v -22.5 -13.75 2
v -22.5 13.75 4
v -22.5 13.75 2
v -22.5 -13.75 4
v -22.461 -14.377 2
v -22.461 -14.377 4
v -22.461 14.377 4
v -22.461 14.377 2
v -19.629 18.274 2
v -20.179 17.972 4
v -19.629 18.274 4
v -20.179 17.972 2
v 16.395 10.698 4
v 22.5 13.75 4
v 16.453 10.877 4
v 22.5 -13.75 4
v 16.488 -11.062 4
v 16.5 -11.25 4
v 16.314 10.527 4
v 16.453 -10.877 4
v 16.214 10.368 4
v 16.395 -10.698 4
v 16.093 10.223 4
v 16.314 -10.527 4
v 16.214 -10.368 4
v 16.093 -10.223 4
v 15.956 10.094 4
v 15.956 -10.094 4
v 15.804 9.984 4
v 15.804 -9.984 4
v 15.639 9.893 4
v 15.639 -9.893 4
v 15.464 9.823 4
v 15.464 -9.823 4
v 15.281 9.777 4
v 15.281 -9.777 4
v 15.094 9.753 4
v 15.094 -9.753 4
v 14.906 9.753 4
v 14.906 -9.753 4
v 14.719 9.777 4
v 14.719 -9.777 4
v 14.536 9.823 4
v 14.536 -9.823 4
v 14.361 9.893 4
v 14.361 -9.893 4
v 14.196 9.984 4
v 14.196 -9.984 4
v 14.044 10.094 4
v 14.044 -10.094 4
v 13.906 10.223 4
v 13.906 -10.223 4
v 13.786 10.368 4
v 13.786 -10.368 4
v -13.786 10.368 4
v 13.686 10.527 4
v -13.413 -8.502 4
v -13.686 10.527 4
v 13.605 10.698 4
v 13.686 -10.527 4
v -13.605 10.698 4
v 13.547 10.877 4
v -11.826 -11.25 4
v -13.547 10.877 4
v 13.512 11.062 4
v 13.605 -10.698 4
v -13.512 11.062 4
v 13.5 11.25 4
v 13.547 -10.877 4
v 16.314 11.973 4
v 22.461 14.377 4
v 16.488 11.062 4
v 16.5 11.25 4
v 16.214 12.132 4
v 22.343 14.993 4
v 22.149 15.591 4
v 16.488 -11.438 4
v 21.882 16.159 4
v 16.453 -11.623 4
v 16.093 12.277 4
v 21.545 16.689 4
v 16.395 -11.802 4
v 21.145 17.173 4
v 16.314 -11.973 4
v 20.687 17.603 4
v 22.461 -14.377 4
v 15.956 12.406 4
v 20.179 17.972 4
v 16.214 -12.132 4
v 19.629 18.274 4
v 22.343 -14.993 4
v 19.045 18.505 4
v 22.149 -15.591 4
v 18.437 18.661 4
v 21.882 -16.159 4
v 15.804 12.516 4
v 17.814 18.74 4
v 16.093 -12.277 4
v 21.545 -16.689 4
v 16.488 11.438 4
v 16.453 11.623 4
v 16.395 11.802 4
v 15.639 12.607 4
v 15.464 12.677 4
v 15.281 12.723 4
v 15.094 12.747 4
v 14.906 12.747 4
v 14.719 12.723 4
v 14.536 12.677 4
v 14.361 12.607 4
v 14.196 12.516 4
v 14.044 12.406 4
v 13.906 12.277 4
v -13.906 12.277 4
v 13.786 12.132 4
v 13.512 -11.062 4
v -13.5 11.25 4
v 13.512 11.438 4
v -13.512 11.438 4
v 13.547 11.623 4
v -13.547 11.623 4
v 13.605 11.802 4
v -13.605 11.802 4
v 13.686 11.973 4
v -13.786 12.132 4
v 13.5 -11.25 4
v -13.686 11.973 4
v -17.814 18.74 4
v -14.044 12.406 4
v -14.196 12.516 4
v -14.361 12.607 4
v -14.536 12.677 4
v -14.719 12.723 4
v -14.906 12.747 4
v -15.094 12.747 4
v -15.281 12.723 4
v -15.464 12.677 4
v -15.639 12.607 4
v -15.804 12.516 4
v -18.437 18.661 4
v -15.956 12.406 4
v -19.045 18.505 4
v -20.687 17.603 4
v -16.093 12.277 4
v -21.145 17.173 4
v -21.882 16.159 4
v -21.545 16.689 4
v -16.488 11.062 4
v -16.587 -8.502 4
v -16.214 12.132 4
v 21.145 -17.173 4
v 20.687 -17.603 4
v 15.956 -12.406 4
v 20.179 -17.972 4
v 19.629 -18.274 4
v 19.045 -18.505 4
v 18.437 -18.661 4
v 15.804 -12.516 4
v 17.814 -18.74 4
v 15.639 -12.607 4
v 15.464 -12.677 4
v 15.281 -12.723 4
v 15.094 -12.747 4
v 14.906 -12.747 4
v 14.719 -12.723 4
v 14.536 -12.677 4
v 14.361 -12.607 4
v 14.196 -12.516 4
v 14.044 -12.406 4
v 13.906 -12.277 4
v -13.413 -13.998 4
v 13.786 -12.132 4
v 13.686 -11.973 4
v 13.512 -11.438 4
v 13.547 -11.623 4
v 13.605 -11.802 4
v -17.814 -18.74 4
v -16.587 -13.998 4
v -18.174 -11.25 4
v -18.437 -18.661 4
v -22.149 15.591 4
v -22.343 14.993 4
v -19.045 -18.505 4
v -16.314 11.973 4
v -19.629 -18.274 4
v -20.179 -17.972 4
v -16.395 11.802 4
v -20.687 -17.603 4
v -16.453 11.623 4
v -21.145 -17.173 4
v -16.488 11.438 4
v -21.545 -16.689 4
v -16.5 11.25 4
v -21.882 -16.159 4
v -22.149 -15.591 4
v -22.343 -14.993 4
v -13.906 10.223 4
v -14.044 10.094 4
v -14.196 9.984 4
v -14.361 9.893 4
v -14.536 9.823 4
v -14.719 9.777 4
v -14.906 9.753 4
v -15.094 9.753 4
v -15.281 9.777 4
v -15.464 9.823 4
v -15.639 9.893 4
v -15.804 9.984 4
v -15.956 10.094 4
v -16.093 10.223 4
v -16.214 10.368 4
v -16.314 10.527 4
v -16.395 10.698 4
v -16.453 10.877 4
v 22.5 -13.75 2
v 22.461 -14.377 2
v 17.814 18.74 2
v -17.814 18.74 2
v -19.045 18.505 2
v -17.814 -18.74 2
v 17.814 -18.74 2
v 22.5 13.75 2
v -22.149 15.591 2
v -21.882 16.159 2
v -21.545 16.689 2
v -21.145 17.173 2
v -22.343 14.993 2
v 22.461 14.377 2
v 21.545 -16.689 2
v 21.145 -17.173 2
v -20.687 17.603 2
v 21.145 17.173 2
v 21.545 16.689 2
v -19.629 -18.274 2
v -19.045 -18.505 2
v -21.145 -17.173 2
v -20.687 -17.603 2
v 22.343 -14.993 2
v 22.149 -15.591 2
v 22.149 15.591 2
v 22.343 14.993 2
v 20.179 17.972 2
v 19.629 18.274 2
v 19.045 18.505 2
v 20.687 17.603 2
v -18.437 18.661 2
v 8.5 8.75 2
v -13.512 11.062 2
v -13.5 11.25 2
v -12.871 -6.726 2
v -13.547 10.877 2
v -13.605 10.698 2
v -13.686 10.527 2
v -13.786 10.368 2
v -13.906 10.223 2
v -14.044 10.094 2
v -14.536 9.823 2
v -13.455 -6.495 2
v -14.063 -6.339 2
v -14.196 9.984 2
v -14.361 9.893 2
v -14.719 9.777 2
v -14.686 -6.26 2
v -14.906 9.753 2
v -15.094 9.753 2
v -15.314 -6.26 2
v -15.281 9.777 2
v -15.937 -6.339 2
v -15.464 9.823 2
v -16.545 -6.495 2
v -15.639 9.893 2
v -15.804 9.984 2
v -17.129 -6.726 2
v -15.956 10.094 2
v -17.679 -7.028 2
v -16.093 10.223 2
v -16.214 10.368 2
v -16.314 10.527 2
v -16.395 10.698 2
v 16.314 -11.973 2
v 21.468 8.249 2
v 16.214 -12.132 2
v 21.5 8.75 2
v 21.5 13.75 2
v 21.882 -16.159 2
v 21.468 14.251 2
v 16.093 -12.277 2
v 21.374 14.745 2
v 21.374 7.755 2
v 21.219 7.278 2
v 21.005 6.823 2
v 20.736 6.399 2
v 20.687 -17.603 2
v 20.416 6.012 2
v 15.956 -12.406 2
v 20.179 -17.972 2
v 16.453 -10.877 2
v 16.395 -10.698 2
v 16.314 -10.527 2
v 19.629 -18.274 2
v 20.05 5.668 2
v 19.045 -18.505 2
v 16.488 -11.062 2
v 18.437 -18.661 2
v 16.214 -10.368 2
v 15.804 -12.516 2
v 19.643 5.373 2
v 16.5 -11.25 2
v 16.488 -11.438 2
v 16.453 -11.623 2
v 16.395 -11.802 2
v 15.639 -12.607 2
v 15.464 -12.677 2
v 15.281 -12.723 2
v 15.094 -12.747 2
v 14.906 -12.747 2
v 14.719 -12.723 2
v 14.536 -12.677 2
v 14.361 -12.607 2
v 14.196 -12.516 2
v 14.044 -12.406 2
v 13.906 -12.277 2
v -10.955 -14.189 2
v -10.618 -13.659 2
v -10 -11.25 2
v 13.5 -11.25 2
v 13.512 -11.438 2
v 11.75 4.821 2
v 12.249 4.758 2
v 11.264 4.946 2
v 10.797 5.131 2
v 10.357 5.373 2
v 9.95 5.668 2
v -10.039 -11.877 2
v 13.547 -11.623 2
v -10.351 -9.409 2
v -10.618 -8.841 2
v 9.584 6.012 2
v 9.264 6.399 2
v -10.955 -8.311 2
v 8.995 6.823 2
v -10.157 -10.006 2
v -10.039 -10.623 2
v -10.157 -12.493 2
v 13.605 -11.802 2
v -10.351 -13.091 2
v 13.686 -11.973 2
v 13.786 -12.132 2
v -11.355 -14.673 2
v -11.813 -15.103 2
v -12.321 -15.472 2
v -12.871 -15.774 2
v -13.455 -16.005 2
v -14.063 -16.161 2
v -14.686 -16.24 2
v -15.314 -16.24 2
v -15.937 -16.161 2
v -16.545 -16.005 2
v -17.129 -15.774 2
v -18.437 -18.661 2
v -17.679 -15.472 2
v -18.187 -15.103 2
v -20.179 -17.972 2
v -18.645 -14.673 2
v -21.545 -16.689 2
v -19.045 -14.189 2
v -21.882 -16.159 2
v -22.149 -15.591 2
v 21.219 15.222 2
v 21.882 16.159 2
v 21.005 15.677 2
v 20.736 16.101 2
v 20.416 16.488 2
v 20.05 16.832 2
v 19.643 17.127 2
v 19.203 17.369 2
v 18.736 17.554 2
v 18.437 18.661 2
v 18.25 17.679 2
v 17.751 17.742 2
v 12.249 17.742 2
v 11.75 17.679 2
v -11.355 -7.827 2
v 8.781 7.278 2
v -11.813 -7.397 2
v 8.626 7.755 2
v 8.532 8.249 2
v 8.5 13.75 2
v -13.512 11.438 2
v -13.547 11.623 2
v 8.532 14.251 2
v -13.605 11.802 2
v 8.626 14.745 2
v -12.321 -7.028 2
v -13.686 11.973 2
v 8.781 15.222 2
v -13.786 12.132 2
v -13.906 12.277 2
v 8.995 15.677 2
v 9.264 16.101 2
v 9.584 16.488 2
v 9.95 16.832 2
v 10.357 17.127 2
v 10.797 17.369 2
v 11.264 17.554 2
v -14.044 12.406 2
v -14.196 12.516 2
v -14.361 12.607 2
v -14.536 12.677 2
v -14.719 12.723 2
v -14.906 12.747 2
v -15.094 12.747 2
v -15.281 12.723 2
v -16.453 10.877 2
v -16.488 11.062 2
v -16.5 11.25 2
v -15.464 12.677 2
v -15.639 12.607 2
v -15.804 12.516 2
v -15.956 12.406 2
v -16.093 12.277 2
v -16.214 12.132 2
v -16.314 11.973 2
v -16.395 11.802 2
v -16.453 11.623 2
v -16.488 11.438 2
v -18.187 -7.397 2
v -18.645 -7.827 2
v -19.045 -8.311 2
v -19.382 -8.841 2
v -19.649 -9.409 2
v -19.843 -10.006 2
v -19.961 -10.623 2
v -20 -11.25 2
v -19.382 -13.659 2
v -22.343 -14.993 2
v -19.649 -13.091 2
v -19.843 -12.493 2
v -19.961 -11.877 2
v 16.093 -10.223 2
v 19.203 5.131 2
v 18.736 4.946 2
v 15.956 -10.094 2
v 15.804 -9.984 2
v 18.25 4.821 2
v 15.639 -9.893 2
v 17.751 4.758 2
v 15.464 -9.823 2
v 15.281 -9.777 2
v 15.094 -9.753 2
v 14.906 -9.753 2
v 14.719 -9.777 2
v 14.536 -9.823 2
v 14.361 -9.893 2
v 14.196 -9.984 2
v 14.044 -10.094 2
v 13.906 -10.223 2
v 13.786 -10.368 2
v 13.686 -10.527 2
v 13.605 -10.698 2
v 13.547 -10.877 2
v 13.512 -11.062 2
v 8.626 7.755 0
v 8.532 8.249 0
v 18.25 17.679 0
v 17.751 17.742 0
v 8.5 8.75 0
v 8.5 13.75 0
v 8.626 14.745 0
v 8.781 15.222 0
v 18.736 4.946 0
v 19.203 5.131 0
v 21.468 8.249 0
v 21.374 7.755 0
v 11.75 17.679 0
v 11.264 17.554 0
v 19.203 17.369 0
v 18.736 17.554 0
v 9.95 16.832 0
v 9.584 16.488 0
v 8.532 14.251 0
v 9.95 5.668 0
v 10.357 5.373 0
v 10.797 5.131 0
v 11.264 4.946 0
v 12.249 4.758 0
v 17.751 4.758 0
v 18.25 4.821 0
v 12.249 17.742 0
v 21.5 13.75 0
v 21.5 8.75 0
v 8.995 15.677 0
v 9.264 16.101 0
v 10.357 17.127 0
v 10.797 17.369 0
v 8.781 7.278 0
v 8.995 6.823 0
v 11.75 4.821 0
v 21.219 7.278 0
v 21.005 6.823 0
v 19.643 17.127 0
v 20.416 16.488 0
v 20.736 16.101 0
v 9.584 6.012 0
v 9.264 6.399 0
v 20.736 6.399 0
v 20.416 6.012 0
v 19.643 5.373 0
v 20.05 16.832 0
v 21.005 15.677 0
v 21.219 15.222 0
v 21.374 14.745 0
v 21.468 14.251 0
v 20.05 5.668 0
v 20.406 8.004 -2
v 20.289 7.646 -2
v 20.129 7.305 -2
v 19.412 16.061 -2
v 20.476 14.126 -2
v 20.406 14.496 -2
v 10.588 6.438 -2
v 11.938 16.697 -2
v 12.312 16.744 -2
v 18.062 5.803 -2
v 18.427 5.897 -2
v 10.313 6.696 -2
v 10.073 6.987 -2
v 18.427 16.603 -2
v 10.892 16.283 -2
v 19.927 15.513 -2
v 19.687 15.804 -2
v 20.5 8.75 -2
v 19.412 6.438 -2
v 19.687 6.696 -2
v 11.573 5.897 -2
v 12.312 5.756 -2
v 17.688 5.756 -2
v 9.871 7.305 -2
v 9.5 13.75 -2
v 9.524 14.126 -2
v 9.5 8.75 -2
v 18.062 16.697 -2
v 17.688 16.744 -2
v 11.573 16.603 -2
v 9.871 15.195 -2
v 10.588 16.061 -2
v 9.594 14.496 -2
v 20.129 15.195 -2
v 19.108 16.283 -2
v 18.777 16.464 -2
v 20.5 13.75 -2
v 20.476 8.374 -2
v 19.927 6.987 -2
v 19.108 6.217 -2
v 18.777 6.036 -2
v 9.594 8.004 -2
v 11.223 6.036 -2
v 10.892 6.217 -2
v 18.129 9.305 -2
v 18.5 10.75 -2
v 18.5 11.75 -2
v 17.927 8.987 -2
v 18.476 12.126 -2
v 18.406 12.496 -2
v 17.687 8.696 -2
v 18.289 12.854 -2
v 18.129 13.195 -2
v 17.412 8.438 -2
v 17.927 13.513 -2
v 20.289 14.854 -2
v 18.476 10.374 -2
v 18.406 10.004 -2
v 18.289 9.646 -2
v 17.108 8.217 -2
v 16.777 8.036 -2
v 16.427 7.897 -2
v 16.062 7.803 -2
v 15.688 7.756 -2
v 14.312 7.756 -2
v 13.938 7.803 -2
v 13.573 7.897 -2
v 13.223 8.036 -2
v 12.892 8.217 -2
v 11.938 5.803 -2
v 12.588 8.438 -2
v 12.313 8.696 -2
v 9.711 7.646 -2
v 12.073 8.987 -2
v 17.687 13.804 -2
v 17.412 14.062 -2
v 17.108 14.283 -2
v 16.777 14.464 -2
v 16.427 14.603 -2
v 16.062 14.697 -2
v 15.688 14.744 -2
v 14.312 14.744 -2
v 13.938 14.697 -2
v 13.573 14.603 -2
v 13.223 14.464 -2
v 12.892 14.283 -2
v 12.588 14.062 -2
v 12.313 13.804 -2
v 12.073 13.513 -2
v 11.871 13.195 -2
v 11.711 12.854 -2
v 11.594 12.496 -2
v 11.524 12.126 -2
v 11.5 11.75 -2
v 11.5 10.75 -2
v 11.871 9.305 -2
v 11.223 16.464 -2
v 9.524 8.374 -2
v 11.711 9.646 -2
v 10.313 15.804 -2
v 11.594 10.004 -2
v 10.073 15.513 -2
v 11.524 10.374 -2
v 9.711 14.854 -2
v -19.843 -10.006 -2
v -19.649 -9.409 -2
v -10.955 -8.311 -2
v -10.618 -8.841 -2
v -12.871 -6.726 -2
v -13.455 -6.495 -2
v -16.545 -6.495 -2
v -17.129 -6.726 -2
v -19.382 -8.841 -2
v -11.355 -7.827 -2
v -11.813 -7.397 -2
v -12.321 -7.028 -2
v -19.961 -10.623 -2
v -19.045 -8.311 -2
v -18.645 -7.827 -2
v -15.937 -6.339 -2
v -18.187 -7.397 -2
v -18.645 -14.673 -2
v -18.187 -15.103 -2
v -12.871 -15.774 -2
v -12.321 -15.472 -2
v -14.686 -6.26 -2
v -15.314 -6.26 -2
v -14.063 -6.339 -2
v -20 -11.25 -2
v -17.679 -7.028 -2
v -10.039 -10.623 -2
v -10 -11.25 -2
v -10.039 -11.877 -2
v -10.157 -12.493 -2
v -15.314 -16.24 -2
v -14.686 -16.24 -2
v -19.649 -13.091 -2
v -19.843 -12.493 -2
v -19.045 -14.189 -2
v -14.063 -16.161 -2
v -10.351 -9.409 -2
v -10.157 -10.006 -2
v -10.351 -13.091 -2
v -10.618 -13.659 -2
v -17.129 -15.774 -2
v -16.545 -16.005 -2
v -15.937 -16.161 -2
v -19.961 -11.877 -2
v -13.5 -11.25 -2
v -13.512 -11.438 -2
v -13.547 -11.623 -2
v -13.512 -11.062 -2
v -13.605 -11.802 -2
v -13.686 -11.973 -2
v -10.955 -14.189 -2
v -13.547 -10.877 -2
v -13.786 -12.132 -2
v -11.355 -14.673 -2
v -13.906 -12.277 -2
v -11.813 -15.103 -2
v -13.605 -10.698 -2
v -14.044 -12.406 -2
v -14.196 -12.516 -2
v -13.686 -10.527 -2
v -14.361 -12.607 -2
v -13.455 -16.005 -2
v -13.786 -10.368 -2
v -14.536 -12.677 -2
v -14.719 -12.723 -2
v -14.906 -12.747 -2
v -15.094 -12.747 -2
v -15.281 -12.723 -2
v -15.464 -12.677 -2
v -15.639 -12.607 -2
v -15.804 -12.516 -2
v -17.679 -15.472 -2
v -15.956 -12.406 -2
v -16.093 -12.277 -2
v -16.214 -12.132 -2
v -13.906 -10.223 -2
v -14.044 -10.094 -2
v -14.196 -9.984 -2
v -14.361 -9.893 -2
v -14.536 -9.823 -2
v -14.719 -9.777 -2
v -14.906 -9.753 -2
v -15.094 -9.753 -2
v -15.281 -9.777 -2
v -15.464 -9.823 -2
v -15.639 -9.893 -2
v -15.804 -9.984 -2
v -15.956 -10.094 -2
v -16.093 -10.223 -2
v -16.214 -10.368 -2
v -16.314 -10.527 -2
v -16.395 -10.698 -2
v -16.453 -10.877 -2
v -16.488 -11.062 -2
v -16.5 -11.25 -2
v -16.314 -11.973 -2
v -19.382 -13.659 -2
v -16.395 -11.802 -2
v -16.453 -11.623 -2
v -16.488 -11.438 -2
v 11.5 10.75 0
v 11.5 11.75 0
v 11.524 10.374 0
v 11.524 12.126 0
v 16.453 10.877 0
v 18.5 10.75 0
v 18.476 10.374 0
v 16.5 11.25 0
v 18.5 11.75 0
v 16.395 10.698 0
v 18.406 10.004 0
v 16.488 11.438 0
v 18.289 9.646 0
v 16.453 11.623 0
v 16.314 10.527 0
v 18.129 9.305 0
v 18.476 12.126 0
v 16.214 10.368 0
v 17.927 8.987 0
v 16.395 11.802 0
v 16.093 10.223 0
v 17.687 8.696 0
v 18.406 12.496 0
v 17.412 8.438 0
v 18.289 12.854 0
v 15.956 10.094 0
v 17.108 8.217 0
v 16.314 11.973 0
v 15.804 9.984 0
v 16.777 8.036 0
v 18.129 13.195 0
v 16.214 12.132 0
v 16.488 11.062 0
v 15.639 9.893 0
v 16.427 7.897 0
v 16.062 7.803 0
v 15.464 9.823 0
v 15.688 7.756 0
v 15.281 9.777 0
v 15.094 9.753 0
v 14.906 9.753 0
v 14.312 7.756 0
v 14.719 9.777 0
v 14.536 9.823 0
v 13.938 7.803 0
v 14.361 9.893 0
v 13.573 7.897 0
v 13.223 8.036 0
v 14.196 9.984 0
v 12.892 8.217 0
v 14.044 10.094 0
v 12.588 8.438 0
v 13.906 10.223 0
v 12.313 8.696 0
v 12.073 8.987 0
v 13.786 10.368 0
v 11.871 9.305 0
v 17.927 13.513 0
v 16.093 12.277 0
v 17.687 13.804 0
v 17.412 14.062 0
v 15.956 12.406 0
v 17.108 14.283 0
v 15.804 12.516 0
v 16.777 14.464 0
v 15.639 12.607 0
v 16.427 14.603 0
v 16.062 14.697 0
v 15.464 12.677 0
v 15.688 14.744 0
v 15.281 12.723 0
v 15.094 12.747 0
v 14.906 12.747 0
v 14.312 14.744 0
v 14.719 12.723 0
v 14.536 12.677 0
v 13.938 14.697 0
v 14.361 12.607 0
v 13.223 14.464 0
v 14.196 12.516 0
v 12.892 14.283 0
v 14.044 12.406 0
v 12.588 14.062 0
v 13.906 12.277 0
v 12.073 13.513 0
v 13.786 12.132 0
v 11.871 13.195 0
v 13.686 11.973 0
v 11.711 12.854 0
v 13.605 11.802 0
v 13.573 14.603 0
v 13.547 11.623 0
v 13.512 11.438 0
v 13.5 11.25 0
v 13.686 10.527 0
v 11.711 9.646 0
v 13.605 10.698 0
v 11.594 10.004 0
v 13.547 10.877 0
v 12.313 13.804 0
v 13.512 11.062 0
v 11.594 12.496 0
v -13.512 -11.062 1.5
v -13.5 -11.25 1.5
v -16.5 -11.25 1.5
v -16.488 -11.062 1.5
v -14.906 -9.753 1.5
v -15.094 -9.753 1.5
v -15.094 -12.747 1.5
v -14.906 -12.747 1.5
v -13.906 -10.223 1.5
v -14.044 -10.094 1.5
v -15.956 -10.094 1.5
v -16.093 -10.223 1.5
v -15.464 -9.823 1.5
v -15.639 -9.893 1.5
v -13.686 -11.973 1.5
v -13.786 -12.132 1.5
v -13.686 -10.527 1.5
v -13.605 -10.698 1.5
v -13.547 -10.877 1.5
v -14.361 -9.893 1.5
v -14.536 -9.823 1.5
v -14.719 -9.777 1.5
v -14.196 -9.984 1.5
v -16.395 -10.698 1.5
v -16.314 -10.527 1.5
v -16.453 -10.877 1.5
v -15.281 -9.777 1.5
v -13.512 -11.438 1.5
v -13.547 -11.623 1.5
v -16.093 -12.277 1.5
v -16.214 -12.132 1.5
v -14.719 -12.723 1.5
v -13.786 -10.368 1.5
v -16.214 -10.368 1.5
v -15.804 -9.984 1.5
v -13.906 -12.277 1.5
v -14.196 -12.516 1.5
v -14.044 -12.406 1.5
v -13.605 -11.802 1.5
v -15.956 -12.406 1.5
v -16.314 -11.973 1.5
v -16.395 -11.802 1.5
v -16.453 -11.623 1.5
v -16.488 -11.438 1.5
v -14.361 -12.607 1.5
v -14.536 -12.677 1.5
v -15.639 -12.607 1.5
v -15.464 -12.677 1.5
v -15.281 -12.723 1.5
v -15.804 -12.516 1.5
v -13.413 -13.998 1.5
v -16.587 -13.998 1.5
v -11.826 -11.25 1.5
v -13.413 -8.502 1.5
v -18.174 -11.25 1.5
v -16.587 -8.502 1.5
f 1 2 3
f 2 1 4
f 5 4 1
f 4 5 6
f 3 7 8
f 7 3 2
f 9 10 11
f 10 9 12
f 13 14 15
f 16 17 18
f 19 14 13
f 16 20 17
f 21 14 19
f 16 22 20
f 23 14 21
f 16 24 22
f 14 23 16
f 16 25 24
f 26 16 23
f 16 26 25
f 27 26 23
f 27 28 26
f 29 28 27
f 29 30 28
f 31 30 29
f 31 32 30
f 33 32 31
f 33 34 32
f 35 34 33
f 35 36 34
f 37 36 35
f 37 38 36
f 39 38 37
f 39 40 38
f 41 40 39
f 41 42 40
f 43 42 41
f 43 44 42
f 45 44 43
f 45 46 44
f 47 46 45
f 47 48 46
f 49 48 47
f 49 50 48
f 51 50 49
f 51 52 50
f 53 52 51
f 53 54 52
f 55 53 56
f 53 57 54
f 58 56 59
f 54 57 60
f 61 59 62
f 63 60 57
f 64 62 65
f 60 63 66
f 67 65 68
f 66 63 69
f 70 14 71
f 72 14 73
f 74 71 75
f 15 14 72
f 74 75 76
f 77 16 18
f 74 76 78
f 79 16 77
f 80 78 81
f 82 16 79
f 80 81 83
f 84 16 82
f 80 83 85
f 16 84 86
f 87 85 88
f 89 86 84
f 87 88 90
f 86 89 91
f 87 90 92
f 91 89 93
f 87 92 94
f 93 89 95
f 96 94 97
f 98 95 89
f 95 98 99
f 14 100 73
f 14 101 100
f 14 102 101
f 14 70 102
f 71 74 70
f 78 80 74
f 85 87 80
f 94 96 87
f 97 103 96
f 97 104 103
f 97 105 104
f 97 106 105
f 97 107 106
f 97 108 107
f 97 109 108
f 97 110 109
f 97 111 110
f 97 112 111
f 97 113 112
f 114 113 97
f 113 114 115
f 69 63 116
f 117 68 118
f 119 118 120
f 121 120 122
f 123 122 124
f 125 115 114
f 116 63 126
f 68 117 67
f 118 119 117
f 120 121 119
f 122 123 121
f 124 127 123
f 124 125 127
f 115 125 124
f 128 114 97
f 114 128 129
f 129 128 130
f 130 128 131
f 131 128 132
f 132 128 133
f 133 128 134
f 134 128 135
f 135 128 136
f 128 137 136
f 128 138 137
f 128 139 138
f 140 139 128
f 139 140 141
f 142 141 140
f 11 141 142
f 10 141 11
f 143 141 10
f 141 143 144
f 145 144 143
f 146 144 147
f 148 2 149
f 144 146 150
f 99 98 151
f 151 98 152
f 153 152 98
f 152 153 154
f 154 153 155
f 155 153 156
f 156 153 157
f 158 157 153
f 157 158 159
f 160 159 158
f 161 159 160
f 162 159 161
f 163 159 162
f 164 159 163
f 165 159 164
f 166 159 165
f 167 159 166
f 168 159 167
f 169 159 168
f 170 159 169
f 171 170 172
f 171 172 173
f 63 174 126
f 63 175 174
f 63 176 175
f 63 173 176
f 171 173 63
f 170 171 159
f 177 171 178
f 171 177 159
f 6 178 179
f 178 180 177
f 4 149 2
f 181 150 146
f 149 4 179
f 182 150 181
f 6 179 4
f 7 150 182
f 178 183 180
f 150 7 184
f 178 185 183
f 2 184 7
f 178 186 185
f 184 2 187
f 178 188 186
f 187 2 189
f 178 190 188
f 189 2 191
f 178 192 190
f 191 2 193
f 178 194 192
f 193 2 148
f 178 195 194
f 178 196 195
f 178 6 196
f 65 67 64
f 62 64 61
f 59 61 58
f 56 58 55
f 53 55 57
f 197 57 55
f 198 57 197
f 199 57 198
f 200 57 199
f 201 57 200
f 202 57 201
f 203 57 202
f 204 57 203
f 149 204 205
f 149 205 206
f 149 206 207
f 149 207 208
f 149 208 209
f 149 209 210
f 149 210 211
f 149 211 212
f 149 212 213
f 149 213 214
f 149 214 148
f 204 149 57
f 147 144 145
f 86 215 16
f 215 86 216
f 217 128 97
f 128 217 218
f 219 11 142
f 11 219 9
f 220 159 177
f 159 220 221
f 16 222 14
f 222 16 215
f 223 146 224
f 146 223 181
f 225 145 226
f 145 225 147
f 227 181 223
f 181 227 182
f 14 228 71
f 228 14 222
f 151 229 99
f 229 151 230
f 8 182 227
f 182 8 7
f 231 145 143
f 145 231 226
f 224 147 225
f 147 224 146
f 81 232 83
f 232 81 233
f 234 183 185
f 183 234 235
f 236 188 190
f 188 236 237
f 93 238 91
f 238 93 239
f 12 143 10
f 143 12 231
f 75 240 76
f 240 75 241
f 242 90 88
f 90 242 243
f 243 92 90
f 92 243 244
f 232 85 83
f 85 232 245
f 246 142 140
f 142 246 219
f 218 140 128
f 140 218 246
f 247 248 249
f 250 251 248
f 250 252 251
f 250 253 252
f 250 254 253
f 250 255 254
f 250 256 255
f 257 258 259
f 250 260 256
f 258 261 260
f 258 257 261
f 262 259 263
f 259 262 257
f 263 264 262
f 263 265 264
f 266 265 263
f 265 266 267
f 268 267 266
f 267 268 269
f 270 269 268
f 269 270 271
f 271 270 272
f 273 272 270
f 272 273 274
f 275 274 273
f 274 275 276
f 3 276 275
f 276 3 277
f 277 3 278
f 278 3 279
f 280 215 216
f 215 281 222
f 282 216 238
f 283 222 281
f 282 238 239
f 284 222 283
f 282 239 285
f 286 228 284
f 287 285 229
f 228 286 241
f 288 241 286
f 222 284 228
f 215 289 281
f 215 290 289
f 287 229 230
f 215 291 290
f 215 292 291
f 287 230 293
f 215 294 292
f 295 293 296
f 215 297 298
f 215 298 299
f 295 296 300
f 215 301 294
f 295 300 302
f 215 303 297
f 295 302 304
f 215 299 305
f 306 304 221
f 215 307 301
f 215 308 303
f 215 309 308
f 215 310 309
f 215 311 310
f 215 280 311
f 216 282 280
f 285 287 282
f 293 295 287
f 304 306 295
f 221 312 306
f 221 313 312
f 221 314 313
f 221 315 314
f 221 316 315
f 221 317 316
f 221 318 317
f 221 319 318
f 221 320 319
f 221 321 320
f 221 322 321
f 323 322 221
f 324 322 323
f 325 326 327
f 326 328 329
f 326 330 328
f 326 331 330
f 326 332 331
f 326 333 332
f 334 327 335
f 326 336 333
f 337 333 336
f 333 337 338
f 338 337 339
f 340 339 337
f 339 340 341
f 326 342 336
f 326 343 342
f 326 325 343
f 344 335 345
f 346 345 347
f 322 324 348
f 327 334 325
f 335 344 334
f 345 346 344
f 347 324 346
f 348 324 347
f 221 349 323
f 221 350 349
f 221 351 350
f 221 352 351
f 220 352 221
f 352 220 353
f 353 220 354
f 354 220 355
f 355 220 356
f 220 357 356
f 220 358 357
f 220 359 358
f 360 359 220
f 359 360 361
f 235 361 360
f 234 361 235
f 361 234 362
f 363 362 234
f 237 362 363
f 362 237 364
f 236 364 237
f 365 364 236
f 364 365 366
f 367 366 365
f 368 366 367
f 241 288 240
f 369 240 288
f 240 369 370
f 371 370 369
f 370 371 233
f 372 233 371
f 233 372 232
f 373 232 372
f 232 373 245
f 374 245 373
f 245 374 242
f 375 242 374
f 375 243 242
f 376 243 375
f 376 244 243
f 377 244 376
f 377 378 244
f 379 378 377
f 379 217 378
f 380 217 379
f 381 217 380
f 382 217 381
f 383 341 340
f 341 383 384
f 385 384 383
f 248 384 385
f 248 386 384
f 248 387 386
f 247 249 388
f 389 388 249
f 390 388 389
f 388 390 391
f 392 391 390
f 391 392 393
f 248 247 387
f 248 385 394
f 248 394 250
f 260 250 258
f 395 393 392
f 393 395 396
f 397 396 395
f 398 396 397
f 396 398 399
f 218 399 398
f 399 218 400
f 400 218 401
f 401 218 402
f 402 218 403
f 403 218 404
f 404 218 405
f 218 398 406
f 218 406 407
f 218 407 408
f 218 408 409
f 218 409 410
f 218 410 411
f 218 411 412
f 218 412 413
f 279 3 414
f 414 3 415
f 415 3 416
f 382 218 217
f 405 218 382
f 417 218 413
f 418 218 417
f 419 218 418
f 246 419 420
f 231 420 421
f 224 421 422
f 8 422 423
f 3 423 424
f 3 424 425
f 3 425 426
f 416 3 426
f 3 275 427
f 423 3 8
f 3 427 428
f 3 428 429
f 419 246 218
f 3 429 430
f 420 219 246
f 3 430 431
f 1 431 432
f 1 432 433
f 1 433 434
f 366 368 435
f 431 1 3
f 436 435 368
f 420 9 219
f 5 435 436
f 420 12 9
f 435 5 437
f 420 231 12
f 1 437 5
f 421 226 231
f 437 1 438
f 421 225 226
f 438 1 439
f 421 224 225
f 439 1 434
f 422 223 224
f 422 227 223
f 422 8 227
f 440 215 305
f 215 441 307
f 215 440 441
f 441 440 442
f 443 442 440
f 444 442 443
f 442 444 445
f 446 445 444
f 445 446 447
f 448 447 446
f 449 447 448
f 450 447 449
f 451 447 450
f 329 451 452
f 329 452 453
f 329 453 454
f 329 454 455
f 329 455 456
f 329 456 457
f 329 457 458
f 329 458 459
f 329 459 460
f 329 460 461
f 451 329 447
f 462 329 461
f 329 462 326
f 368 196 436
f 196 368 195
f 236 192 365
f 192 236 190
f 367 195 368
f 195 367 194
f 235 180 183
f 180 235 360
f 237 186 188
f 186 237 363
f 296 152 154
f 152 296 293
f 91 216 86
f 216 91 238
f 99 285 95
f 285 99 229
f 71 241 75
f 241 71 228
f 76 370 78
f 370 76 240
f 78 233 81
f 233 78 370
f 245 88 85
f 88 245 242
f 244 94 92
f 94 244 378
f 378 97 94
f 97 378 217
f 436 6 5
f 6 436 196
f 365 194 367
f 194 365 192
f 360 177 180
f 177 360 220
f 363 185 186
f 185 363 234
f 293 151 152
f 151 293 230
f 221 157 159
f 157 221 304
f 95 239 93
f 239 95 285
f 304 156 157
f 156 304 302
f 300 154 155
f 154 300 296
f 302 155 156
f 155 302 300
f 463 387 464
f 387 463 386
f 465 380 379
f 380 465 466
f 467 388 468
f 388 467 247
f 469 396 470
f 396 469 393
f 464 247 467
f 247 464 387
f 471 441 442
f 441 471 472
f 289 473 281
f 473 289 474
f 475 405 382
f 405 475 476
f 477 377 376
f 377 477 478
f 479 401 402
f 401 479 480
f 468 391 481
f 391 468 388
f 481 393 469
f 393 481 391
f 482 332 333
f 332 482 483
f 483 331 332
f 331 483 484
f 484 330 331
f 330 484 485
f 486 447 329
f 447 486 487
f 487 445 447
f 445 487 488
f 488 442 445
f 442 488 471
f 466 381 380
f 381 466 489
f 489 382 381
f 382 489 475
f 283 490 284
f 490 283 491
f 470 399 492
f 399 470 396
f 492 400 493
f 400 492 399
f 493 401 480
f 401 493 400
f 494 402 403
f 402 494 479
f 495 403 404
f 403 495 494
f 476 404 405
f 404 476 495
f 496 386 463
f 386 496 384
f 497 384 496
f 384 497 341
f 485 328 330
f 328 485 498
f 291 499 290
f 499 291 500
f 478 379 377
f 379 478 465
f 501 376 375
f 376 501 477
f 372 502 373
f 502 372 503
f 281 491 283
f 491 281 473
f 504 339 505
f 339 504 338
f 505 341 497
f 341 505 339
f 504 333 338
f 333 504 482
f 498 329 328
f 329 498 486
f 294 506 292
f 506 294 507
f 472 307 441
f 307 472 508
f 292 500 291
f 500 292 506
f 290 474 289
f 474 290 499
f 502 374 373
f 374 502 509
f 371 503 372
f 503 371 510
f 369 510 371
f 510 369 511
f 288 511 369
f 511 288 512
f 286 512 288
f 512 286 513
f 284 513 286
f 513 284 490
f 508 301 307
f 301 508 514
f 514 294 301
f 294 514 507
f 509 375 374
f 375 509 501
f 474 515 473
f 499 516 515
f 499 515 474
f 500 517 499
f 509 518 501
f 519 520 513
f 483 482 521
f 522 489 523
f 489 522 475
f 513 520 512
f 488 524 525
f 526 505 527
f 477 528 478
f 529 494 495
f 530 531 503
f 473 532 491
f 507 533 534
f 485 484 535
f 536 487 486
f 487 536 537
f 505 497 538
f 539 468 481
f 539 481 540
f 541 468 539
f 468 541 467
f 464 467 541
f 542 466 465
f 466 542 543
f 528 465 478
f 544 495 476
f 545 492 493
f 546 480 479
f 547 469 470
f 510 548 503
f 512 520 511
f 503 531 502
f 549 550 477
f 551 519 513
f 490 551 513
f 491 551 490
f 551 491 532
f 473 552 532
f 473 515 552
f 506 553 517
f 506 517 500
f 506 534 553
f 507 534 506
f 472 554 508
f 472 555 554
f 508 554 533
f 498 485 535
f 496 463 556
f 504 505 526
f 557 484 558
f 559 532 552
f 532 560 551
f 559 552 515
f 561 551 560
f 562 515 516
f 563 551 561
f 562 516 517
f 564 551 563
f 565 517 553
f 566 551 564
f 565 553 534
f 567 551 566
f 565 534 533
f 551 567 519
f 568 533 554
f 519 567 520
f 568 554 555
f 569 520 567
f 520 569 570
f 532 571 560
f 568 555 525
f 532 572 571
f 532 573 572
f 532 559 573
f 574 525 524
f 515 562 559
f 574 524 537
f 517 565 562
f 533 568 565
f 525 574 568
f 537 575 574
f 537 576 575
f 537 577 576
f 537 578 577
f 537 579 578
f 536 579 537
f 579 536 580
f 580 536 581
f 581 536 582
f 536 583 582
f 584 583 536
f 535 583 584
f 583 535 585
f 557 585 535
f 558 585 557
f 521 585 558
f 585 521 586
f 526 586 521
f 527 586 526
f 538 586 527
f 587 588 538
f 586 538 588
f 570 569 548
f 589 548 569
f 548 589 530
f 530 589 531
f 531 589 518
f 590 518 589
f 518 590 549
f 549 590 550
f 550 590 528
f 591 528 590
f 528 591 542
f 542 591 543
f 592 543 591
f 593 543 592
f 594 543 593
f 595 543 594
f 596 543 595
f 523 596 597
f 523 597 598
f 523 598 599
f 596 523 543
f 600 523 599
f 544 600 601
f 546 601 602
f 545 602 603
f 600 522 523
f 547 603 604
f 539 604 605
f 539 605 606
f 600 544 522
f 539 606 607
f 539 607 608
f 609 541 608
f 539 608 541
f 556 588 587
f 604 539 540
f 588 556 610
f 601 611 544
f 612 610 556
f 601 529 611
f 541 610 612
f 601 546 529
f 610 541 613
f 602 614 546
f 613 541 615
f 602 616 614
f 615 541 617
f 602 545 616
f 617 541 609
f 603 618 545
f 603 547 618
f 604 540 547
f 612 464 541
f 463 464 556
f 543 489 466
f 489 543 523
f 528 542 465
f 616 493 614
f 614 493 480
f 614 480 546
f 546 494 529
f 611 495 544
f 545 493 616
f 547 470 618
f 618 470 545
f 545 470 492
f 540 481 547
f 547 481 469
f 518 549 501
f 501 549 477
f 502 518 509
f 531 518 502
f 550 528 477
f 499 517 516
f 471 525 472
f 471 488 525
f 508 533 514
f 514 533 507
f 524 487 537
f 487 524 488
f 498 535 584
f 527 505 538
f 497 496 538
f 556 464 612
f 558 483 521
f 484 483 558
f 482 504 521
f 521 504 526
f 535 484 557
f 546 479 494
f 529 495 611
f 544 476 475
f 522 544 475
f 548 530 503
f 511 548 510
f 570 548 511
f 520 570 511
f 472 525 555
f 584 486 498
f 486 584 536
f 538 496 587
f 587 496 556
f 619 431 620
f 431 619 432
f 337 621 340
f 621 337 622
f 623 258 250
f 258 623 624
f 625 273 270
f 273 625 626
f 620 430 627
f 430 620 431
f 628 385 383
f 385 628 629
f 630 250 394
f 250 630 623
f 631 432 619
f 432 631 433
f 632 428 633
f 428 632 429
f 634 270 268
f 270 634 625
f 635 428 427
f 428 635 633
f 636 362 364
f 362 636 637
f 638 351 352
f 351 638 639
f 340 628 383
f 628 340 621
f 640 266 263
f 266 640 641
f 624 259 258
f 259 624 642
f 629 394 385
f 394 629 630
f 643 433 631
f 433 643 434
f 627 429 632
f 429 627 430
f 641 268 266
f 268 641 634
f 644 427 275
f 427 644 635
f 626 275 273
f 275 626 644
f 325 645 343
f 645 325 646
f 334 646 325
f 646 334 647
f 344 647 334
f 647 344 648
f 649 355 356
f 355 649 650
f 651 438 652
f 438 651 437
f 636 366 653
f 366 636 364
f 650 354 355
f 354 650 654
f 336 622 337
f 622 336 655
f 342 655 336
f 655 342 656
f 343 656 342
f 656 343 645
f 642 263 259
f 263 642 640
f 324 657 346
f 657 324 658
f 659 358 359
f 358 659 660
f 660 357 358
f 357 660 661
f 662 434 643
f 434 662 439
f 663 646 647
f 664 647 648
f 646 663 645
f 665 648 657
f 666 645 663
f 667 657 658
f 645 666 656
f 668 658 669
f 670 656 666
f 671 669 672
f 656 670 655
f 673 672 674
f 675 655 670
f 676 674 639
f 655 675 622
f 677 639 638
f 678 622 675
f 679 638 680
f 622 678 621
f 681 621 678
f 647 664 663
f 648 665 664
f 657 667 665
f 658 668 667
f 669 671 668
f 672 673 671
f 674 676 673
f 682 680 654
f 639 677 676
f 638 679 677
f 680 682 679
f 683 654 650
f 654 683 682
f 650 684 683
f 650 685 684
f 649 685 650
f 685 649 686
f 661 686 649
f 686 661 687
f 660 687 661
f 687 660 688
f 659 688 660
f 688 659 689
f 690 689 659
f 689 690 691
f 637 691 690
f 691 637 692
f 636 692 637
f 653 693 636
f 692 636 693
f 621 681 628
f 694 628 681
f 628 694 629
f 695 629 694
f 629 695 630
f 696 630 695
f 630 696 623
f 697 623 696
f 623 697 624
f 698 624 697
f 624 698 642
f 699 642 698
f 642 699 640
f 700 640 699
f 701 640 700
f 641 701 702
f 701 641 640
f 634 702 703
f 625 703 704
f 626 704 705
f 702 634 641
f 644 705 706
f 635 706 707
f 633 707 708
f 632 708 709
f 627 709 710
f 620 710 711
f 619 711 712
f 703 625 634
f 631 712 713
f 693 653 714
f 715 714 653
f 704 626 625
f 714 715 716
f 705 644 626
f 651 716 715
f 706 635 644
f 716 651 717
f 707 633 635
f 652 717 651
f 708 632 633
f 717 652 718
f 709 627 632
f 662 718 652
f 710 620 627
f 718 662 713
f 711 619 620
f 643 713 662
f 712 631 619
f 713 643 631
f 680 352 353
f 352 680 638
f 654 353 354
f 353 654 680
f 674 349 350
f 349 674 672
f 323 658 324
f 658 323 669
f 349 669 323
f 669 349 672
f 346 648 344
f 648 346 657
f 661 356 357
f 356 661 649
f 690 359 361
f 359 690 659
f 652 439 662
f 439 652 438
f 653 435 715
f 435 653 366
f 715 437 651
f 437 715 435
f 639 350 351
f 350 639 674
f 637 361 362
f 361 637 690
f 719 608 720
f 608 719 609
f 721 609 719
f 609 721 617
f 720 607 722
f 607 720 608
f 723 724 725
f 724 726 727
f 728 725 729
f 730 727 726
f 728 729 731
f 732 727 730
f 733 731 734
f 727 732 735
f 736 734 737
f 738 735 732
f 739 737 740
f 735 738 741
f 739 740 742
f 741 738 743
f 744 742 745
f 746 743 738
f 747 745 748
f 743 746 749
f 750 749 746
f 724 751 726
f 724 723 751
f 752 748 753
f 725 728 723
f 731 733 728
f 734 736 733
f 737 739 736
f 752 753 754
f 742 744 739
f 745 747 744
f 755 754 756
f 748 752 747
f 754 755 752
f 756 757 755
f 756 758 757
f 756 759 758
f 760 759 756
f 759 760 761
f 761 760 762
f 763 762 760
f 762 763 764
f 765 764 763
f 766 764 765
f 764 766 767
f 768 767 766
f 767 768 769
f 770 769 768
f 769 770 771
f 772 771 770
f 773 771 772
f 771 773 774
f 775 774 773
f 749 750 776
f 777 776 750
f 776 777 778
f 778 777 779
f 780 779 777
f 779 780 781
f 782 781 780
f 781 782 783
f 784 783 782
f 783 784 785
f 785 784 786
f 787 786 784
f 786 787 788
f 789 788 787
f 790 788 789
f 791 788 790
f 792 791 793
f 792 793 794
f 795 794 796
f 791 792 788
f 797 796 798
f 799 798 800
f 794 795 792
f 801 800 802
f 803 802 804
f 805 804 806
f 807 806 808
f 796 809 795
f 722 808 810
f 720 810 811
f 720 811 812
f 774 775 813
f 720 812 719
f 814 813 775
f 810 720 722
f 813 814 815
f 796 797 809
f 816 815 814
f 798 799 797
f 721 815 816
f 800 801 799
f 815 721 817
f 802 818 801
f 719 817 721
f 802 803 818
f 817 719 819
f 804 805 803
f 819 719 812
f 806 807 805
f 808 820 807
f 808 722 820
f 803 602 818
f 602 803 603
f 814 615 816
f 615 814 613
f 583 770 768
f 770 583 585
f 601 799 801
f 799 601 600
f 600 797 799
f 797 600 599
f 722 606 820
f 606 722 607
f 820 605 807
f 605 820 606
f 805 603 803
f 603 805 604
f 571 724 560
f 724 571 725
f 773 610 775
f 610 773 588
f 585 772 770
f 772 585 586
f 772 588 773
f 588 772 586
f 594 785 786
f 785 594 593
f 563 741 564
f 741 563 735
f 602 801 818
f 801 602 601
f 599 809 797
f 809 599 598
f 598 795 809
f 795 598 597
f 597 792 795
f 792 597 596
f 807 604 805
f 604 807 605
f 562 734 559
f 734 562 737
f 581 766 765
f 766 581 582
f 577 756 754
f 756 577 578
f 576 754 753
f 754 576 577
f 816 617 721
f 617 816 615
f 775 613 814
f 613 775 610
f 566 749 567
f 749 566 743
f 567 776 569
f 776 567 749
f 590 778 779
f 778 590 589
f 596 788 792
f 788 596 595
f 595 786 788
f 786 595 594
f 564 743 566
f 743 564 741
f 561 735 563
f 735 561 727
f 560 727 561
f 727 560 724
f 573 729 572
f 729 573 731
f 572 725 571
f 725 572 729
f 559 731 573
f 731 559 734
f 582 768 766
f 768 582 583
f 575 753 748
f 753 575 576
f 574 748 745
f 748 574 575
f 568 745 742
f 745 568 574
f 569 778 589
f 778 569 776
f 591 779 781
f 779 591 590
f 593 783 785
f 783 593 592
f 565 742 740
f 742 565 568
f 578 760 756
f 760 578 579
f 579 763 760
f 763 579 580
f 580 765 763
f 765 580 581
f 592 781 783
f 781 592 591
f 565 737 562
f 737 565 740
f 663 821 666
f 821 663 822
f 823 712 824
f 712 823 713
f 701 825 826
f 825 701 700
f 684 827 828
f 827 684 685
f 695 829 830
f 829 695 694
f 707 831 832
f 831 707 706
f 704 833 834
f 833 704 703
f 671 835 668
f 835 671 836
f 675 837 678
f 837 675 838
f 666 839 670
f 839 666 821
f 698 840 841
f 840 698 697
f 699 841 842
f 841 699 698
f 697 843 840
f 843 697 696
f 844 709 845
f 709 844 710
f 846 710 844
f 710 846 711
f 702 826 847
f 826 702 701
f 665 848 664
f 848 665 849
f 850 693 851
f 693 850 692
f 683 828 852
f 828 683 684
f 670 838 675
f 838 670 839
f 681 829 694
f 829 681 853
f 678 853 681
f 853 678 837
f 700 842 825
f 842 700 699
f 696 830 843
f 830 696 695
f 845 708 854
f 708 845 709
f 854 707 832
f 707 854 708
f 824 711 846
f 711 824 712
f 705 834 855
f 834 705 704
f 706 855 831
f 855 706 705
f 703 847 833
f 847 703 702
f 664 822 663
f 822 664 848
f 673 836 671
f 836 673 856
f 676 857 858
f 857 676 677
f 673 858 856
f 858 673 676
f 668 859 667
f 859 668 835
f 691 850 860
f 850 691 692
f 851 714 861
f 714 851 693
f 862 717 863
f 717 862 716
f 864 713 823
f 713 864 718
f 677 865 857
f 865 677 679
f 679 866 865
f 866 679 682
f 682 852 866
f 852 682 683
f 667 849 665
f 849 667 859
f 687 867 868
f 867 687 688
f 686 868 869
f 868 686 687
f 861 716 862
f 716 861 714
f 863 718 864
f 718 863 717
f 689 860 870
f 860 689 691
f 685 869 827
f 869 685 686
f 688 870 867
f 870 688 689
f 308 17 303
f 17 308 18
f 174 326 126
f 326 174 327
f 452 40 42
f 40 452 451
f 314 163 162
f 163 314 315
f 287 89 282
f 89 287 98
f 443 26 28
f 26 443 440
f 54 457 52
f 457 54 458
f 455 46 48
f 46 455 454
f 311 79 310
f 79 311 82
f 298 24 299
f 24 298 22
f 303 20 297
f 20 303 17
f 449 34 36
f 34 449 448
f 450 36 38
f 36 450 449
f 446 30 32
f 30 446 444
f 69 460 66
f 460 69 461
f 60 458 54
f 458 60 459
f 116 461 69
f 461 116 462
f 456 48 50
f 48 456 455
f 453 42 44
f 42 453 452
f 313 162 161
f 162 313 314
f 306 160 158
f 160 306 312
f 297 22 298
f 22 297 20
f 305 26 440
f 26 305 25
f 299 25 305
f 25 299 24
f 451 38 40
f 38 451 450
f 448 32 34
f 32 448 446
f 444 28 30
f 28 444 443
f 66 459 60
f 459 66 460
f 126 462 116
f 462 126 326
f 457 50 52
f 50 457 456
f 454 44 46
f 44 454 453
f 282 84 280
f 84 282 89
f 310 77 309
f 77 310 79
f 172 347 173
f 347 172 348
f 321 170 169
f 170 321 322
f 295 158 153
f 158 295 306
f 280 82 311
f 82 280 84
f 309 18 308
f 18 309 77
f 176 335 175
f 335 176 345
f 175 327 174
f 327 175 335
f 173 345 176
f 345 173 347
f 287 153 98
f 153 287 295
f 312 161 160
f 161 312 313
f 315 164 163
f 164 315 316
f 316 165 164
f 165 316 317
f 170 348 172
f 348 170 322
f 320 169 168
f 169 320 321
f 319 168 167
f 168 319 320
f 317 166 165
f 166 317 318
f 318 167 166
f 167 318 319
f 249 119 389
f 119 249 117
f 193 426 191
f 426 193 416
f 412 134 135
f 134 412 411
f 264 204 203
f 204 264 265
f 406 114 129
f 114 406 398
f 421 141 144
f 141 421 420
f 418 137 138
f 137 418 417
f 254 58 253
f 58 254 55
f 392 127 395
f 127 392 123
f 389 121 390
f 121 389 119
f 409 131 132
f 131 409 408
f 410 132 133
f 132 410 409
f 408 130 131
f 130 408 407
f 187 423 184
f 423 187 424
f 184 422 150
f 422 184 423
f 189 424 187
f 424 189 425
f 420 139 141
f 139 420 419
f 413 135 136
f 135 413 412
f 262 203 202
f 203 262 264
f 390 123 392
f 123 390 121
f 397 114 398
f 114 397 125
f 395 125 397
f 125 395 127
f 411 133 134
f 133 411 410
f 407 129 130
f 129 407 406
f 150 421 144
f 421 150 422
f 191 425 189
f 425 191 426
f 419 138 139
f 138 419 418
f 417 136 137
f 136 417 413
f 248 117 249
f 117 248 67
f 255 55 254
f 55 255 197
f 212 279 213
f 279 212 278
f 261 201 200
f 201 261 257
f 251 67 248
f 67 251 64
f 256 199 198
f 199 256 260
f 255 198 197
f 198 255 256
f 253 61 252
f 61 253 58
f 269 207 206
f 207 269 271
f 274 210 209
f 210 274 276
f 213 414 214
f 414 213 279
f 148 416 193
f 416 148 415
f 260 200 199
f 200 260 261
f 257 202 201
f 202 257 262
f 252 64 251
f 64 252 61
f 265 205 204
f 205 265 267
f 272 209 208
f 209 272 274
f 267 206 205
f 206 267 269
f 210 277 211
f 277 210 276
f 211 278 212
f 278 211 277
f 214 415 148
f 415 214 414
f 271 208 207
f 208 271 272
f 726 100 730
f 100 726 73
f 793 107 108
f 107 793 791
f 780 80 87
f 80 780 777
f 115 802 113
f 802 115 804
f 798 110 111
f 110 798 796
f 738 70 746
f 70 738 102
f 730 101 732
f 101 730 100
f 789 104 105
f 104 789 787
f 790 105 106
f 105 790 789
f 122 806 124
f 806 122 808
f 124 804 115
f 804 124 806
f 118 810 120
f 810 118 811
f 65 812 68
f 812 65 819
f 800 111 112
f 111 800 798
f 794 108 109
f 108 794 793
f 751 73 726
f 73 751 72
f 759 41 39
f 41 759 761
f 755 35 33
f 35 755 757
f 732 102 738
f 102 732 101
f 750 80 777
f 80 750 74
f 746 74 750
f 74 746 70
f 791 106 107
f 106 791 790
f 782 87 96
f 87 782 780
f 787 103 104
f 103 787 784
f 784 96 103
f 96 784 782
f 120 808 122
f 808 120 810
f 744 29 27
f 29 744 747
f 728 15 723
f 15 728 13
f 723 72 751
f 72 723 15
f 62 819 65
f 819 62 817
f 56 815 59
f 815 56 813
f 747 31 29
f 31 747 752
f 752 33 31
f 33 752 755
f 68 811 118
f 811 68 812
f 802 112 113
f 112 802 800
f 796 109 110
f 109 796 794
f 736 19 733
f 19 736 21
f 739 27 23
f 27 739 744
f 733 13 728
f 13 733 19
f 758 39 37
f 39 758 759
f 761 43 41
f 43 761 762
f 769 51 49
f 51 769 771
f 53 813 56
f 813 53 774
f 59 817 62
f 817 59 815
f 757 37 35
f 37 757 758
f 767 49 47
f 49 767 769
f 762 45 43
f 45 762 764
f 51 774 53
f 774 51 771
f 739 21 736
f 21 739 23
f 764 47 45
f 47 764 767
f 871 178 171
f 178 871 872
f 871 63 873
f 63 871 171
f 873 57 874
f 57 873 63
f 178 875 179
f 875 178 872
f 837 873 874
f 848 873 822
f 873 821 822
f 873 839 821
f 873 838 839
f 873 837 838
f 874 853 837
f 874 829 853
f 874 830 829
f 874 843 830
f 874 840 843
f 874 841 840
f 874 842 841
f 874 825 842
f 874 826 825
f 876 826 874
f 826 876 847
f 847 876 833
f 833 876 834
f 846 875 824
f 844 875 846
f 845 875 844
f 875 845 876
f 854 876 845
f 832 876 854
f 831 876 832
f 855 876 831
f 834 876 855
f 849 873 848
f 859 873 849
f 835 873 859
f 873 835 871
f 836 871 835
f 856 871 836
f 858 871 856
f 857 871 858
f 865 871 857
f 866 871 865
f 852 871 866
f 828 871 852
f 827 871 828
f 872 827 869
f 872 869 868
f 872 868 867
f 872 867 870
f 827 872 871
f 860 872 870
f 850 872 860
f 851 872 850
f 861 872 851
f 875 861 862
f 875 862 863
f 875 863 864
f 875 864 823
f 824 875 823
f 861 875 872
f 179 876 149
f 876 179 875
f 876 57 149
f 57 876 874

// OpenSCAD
$fn = 50;


difference() {
	union() {
		translate(v = [0, 0, 2]) {
			rotate(a = [0, 0, 0]) {
				hull() {
					translate(v = [-17.5000000000, 13.7500000000, 0]) {
						rotate(a = [0, 0, 0]) {
							translate(v = [0, 0, 0]) {
								rotate(a = [0, 0, 0]) {
									cylinder(h = 2, r = 5);
								}
							}
						}
					}
					translate(v = [17.5000000000, 13.7500000000, 0]) {
						rotate(a = [0, 0, 0]) {
							translate(v = [0, 0, 0]) {
								rotate(a = [0, 0, 0]) {
									cylinder(h = 2, r = 5);
								}
							}
						}
					}
					translate(v = [-17.5000000000, -13.7500000000, 0]) {
						rotate(a = [0, 0, 0]) {
							translate(v = [0, 0, 0]) {
								rotate(a = [0, 0, 0]) {
									cylinder(h = 2, r = 5);
								}
							}
						}
					}
					translate(v = [17.5000000000, -13.7500000000, 0]) {
						rotate(a = [0, 0, 0]) {
							translate(v = [0, 0, 0]) {
								rotate(a = [0, 0, 0]) {
									cylinder(h = 2, r = 5);
								}
							}
						}
					}
				}
			}
		}
		translate(v = [15.0000000000, 11.2500000000, 0]) {
			rotate(a = [0, 0, 0]) {
				hull() {
					translate(v = [-2.5000000000, 2.5000000000, 0]) {
						rotate(a = [0, 0, 0]) {
							cylinder(h = 2, r1 = 4.0000000000, r2 = 4.0000000000);
						}
					}
					translate(v = [2.5000000000, 2.5000000000, 0]) {
						rotate(a = [0, 0, 0]) {
							cylinder(h = 2, r1 = 4.0000000000, r2 = 4.0000000000);
						}
					}
					translate(v = [-2.5000000000, -2.5000000000, 0]) {
						rotate(a = [0, 0, 0]) {
							cylinder(h = 2, r1 = 4.0000000000, r2 = 4.0000000000);
						}
					}
					translate(v = [2.5000000000, -2.5000000000, 0]) {
						rotate(a = [0, 0, 0]) {
							cylinder(h = 2, r1 = 4.0000000000, r2 = 4.0000000000);
						}
					}
				}
			}
		}
		translate(v = [15.0000000000, 11.2500000000, -2]) {
			rotate(a = [0, 180, 0]) {
				hull() {
					translate(v = [-2.5000000000, 2.5000000000, 0]) {
						rotate(a = [0, 180, 0]) {
							cylinder(h = 2, r1 = 3.0000000000, r2 = 4.0000000000);
						}
					}
					translate(v = [2.5000000000, 2.5000000000, 0]) {
						rotate(a = [0, 180, 0]) {
							cylinder(h = 2, r1 = 3.0000000000, r2 = 4.0000000000);
						}
					}
					translate(v = [-2.5000000000, -2.5000000000, 0]) {
						rotate(a = [0, 180, 0]) {
							cylinder(h = 2, r1 = 3.0000000000, r2 = 4.0000000000);
						}
					}
					translate(v = [2.5000000000, -2.5000000000, 0]) {
						rotate(a = [0, 180, 0]) {
							cylinder(h = 2, r1 = 3.0000000000, r2 = 4.0000000000);
						}
					}
				}
			}
		}
		translate(v = [-15.0000000000, -11.2500000000, -2.0000000000]) {
			rotate(a = [0, 0, 0]) {
				cylinder(h = 4, r = 5);
			}
		}
	}
	union() {
		translate(v = [15.0000000000, 11.2500000000, -2]) {
			rotate(a = [0, 0, 0]) {
				hull() {
					translate(v = [-0.5000000000, 0.5000000000, 0]) {
						rotate(a = [0, 0, 0]) {
							translate(v = [0, 0, 0]) {
								rotate(a = [0, 0, 0]) {
									cylinder(h = 2, r = 3.0000000000);
								}
							}
						}
					}
					translate(v = [0.5000000000, 0.5000000000, 0]) {
						rotate(a = [0, 0, 0]) {
							translate(v = [0, 0, 0]) {
								rotate(a = [0, 0, 0]) {
									cylinder(h = 2, r = 3.0000000000);
								}
							}
						}
					}
					translate(v = [-0.5000000000, -0.5000000000, 0]) {
						rotate(a = [0, 0, 0]) {
							translate(v = [0, 0, 0]) {
								rotate(a = [0, 0, 0]) {
									cylinder(h = 2, r = 3.0000000000);
								}
							}
						}
					}
					translate(v = [0.5000000000, -0.5000000000, 0]) {
						rotate(a = [0, 0, 0]) {
							translate(v = [0, 0, 0]) {
								rotate(a = [0, 0, 0]) {
									cylinder(h = 2, r = 3.0000000000);
								}
							}
						}
					}
				}
			}
		}
		translate(v = [-15.0000000000, -11.2500000000, -50]) {
			rotate(a = [0, 0, 0]) {
				cylinder(h = 100, r = 1.5000000000);
			}
		}
		translate(v = [15.0000000000, -11.2500000000, -50]) {
			rotate(a = [0, 0, 0]) {
				cylinder(h = 100, r = 1.5000000000);
			}
		}
		translate(v = [-15.0000000000, 11.2500000000, -50]) {
			rotate(a = [0, 0, 0]) {
				cylinder(h = 100, r = 1.5000000000);
			}
		}
		translate(v = [15.0000000000, 11.2500000000, -50]) {
			rotate(a = [0, 0, 0]) {
				cylinder(h = 100, r = 1.5000000000);
			}
		}
		translate(v = [-15.0000000000, -11.2500000000, 1.5000000000]) {
			rotate(a = [0, 0, 0]) {
				#translate(v = [0, 0, 0]) {
					rotate(a = [0, 0, 0]) {
						linear_extrude(height = 2.5000000000) {
							polygon(points = [[3.1735000000, 0.0000000000], [1.5867500000, 2.7483316189], [-1.5867500000, 2.7483316189], [-3.1735000000, 0.0000000000], [-1.5867500000, -2.7483316189], [1.5867500000, -2.7483316189]]);
						}
					}
				}
			}
		}
	}
}
